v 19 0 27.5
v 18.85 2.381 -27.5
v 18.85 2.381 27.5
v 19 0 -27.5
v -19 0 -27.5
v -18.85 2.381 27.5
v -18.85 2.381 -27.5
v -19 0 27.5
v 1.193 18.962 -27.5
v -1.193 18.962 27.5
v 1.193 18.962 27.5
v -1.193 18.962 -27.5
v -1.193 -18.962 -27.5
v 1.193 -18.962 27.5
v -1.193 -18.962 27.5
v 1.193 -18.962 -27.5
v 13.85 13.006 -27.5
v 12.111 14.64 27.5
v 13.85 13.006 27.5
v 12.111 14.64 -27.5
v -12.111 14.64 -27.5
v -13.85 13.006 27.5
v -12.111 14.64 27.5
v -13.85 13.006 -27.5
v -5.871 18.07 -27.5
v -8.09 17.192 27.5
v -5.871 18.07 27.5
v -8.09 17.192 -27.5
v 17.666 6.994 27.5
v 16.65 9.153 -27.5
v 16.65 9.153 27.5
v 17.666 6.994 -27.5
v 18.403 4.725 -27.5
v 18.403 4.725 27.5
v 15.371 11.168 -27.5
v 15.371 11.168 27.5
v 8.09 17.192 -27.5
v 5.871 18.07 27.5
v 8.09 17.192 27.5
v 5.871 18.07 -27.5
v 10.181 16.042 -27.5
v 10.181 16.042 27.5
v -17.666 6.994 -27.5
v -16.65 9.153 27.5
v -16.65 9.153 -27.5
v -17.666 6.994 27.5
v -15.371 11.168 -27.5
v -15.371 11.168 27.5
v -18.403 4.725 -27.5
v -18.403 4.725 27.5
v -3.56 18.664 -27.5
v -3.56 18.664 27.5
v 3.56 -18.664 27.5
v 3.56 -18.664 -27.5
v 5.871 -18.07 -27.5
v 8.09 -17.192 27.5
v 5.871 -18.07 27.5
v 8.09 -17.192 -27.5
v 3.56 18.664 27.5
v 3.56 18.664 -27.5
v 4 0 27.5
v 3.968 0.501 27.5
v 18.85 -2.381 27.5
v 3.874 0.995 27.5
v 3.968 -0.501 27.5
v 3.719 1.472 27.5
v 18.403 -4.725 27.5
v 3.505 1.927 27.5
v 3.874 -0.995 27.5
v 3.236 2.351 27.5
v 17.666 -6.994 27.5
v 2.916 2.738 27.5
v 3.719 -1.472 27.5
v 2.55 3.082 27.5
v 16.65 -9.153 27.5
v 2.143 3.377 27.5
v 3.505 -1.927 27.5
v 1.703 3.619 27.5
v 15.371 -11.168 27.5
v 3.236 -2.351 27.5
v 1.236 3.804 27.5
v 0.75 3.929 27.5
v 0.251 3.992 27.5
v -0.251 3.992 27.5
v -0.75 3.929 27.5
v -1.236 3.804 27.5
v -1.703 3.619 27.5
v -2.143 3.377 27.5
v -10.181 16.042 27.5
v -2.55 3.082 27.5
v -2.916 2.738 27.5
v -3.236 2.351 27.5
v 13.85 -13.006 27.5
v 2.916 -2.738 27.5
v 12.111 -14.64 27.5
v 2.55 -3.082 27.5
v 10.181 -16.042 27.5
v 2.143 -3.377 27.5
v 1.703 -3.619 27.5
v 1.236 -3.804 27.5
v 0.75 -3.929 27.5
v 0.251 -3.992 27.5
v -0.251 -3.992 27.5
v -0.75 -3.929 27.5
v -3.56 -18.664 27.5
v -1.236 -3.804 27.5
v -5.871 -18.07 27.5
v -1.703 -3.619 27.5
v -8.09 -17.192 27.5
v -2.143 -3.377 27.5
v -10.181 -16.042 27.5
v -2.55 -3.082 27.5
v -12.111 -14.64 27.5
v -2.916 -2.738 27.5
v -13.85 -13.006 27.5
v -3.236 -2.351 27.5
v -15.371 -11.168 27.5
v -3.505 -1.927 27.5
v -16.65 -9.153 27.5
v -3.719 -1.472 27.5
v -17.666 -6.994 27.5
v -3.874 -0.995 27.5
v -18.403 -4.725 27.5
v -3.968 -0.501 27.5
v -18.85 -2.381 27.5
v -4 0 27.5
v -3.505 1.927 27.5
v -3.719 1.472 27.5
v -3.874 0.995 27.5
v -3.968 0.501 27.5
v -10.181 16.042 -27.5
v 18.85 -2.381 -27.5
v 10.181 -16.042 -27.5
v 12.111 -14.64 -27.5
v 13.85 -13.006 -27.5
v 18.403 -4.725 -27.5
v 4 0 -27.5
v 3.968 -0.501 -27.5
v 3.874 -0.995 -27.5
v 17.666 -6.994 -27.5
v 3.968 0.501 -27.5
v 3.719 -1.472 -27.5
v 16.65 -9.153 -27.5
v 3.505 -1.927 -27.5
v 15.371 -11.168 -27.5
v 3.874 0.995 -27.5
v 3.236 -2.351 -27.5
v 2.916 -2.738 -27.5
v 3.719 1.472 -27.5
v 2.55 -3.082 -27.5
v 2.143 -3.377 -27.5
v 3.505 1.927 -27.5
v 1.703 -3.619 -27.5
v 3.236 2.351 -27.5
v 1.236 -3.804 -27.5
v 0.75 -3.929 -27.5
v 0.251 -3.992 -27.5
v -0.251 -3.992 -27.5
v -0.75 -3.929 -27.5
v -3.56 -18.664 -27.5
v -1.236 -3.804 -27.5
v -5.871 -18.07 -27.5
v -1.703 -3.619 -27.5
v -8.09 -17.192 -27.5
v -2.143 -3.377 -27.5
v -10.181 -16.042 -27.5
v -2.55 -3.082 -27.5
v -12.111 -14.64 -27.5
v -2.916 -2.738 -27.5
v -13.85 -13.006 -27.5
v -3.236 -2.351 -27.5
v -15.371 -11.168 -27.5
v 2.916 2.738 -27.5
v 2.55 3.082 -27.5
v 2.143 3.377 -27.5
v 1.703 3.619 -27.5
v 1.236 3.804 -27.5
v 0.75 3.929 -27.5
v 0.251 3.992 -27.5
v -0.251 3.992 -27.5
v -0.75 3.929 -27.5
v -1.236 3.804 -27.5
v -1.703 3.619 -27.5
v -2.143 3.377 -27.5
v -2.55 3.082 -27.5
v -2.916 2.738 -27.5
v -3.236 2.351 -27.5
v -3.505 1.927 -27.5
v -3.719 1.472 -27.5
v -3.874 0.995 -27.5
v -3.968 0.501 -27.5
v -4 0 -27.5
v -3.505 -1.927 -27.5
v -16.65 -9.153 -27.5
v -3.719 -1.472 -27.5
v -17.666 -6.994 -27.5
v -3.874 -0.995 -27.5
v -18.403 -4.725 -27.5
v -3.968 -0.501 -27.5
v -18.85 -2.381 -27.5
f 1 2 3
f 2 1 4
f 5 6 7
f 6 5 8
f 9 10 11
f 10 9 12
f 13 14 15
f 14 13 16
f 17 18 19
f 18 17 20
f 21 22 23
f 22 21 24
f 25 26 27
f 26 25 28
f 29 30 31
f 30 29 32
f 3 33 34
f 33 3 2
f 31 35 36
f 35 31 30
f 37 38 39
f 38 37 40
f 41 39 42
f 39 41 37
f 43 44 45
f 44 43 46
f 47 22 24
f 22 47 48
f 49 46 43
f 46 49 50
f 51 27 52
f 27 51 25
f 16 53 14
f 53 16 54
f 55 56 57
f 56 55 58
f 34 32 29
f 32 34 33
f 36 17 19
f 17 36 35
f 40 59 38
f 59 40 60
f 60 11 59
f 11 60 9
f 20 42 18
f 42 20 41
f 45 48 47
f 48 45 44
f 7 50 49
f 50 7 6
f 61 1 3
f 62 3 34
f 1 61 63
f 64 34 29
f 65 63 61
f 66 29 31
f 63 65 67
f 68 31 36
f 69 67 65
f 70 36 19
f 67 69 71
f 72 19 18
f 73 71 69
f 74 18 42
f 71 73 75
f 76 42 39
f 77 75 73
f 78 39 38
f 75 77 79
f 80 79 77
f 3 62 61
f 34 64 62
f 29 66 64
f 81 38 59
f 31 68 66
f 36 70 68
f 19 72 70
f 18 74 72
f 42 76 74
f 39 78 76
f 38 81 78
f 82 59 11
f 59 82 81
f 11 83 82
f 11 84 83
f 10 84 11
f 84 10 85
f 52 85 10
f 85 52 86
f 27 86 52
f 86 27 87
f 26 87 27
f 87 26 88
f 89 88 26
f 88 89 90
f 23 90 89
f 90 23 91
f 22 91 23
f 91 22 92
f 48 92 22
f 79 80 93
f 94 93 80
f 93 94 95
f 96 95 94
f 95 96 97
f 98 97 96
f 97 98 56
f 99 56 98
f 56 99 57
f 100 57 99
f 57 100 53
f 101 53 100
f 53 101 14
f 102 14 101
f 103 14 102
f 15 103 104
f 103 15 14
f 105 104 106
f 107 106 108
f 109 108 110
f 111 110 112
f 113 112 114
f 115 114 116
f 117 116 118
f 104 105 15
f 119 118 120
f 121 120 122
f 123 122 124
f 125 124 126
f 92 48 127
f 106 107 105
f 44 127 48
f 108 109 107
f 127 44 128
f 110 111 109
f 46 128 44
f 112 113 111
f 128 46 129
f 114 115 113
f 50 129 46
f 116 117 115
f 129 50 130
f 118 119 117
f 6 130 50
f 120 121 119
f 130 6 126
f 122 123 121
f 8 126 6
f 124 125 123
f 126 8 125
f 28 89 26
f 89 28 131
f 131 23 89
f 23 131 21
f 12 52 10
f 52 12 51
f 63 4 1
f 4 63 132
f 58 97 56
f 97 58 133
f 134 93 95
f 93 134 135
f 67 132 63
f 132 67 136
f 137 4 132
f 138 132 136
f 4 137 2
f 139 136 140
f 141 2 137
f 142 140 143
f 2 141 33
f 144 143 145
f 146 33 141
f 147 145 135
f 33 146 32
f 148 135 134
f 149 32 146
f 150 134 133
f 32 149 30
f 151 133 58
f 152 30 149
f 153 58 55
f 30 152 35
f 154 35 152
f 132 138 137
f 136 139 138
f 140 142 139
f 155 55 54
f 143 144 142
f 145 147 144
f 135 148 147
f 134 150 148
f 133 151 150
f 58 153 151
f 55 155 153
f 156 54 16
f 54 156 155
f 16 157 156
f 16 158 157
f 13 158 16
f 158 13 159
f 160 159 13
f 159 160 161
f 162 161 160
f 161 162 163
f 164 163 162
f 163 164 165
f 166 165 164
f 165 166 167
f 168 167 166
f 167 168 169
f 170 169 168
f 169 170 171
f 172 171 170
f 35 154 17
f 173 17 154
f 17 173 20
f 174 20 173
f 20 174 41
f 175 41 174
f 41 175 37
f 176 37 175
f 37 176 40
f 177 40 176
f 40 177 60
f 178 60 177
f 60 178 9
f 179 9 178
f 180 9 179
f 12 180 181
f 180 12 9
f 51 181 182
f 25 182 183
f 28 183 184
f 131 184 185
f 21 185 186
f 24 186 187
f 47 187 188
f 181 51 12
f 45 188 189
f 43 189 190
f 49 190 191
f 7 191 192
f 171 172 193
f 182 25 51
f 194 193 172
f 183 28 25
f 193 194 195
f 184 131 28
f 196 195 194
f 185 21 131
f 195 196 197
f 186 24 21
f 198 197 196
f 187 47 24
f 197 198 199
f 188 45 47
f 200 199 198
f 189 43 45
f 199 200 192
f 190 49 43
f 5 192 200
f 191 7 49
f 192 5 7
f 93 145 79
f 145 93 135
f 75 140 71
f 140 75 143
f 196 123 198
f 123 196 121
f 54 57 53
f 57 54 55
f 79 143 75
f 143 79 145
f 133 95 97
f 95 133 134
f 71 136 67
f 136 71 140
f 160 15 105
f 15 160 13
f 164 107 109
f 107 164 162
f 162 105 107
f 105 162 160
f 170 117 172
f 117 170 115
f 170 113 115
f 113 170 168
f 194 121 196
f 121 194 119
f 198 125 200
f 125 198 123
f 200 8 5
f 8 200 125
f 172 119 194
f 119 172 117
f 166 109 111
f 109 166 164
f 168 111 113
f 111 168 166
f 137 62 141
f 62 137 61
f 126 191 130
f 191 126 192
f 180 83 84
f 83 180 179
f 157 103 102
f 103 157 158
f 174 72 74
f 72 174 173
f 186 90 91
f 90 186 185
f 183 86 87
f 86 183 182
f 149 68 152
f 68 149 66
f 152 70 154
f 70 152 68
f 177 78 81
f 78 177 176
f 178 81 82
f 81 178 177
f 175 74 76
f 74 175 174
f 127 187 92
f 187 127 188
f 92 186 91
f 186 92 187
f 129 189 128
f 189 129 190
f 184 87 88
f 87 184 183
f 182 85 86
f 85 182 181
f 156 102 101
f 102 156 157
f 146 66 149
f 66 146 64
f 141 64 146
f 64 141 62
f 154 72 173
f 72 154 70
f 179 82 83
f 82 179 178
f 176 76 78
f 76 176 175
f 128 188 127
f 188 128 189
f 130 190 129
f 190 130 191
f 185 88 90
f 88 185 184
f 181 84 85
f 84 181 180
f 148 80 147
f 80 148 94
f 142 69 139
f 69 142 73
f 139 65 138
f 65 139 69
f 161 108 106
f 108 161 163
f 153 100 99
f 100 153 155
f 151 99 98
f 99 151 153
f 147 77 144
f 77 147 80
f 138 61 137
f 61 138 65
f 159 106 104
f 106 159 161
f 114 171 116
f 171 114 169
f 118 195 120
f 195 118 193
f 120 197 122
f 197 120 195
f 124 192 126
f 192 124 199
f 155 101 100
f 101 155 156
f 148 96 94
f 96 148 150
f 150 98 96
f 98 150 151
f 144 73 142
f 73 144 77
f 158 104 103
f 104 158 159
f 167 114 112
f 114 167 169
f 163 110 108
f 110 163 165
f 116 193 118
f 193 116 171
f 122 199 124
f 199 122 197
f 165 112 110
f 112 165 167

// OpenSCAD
$fn = 50;


difference() {
	union() {
		translate(v = [0, 0, -27.5000000000]) {
			cylinder(h = 55, r = 19.0000000000);
		}
	}
	union() {
		translate(v = [0, 0, -100.0000000000]) {
			cylinder(h = 200, r = 4.0000000000);
		}
	}
}
